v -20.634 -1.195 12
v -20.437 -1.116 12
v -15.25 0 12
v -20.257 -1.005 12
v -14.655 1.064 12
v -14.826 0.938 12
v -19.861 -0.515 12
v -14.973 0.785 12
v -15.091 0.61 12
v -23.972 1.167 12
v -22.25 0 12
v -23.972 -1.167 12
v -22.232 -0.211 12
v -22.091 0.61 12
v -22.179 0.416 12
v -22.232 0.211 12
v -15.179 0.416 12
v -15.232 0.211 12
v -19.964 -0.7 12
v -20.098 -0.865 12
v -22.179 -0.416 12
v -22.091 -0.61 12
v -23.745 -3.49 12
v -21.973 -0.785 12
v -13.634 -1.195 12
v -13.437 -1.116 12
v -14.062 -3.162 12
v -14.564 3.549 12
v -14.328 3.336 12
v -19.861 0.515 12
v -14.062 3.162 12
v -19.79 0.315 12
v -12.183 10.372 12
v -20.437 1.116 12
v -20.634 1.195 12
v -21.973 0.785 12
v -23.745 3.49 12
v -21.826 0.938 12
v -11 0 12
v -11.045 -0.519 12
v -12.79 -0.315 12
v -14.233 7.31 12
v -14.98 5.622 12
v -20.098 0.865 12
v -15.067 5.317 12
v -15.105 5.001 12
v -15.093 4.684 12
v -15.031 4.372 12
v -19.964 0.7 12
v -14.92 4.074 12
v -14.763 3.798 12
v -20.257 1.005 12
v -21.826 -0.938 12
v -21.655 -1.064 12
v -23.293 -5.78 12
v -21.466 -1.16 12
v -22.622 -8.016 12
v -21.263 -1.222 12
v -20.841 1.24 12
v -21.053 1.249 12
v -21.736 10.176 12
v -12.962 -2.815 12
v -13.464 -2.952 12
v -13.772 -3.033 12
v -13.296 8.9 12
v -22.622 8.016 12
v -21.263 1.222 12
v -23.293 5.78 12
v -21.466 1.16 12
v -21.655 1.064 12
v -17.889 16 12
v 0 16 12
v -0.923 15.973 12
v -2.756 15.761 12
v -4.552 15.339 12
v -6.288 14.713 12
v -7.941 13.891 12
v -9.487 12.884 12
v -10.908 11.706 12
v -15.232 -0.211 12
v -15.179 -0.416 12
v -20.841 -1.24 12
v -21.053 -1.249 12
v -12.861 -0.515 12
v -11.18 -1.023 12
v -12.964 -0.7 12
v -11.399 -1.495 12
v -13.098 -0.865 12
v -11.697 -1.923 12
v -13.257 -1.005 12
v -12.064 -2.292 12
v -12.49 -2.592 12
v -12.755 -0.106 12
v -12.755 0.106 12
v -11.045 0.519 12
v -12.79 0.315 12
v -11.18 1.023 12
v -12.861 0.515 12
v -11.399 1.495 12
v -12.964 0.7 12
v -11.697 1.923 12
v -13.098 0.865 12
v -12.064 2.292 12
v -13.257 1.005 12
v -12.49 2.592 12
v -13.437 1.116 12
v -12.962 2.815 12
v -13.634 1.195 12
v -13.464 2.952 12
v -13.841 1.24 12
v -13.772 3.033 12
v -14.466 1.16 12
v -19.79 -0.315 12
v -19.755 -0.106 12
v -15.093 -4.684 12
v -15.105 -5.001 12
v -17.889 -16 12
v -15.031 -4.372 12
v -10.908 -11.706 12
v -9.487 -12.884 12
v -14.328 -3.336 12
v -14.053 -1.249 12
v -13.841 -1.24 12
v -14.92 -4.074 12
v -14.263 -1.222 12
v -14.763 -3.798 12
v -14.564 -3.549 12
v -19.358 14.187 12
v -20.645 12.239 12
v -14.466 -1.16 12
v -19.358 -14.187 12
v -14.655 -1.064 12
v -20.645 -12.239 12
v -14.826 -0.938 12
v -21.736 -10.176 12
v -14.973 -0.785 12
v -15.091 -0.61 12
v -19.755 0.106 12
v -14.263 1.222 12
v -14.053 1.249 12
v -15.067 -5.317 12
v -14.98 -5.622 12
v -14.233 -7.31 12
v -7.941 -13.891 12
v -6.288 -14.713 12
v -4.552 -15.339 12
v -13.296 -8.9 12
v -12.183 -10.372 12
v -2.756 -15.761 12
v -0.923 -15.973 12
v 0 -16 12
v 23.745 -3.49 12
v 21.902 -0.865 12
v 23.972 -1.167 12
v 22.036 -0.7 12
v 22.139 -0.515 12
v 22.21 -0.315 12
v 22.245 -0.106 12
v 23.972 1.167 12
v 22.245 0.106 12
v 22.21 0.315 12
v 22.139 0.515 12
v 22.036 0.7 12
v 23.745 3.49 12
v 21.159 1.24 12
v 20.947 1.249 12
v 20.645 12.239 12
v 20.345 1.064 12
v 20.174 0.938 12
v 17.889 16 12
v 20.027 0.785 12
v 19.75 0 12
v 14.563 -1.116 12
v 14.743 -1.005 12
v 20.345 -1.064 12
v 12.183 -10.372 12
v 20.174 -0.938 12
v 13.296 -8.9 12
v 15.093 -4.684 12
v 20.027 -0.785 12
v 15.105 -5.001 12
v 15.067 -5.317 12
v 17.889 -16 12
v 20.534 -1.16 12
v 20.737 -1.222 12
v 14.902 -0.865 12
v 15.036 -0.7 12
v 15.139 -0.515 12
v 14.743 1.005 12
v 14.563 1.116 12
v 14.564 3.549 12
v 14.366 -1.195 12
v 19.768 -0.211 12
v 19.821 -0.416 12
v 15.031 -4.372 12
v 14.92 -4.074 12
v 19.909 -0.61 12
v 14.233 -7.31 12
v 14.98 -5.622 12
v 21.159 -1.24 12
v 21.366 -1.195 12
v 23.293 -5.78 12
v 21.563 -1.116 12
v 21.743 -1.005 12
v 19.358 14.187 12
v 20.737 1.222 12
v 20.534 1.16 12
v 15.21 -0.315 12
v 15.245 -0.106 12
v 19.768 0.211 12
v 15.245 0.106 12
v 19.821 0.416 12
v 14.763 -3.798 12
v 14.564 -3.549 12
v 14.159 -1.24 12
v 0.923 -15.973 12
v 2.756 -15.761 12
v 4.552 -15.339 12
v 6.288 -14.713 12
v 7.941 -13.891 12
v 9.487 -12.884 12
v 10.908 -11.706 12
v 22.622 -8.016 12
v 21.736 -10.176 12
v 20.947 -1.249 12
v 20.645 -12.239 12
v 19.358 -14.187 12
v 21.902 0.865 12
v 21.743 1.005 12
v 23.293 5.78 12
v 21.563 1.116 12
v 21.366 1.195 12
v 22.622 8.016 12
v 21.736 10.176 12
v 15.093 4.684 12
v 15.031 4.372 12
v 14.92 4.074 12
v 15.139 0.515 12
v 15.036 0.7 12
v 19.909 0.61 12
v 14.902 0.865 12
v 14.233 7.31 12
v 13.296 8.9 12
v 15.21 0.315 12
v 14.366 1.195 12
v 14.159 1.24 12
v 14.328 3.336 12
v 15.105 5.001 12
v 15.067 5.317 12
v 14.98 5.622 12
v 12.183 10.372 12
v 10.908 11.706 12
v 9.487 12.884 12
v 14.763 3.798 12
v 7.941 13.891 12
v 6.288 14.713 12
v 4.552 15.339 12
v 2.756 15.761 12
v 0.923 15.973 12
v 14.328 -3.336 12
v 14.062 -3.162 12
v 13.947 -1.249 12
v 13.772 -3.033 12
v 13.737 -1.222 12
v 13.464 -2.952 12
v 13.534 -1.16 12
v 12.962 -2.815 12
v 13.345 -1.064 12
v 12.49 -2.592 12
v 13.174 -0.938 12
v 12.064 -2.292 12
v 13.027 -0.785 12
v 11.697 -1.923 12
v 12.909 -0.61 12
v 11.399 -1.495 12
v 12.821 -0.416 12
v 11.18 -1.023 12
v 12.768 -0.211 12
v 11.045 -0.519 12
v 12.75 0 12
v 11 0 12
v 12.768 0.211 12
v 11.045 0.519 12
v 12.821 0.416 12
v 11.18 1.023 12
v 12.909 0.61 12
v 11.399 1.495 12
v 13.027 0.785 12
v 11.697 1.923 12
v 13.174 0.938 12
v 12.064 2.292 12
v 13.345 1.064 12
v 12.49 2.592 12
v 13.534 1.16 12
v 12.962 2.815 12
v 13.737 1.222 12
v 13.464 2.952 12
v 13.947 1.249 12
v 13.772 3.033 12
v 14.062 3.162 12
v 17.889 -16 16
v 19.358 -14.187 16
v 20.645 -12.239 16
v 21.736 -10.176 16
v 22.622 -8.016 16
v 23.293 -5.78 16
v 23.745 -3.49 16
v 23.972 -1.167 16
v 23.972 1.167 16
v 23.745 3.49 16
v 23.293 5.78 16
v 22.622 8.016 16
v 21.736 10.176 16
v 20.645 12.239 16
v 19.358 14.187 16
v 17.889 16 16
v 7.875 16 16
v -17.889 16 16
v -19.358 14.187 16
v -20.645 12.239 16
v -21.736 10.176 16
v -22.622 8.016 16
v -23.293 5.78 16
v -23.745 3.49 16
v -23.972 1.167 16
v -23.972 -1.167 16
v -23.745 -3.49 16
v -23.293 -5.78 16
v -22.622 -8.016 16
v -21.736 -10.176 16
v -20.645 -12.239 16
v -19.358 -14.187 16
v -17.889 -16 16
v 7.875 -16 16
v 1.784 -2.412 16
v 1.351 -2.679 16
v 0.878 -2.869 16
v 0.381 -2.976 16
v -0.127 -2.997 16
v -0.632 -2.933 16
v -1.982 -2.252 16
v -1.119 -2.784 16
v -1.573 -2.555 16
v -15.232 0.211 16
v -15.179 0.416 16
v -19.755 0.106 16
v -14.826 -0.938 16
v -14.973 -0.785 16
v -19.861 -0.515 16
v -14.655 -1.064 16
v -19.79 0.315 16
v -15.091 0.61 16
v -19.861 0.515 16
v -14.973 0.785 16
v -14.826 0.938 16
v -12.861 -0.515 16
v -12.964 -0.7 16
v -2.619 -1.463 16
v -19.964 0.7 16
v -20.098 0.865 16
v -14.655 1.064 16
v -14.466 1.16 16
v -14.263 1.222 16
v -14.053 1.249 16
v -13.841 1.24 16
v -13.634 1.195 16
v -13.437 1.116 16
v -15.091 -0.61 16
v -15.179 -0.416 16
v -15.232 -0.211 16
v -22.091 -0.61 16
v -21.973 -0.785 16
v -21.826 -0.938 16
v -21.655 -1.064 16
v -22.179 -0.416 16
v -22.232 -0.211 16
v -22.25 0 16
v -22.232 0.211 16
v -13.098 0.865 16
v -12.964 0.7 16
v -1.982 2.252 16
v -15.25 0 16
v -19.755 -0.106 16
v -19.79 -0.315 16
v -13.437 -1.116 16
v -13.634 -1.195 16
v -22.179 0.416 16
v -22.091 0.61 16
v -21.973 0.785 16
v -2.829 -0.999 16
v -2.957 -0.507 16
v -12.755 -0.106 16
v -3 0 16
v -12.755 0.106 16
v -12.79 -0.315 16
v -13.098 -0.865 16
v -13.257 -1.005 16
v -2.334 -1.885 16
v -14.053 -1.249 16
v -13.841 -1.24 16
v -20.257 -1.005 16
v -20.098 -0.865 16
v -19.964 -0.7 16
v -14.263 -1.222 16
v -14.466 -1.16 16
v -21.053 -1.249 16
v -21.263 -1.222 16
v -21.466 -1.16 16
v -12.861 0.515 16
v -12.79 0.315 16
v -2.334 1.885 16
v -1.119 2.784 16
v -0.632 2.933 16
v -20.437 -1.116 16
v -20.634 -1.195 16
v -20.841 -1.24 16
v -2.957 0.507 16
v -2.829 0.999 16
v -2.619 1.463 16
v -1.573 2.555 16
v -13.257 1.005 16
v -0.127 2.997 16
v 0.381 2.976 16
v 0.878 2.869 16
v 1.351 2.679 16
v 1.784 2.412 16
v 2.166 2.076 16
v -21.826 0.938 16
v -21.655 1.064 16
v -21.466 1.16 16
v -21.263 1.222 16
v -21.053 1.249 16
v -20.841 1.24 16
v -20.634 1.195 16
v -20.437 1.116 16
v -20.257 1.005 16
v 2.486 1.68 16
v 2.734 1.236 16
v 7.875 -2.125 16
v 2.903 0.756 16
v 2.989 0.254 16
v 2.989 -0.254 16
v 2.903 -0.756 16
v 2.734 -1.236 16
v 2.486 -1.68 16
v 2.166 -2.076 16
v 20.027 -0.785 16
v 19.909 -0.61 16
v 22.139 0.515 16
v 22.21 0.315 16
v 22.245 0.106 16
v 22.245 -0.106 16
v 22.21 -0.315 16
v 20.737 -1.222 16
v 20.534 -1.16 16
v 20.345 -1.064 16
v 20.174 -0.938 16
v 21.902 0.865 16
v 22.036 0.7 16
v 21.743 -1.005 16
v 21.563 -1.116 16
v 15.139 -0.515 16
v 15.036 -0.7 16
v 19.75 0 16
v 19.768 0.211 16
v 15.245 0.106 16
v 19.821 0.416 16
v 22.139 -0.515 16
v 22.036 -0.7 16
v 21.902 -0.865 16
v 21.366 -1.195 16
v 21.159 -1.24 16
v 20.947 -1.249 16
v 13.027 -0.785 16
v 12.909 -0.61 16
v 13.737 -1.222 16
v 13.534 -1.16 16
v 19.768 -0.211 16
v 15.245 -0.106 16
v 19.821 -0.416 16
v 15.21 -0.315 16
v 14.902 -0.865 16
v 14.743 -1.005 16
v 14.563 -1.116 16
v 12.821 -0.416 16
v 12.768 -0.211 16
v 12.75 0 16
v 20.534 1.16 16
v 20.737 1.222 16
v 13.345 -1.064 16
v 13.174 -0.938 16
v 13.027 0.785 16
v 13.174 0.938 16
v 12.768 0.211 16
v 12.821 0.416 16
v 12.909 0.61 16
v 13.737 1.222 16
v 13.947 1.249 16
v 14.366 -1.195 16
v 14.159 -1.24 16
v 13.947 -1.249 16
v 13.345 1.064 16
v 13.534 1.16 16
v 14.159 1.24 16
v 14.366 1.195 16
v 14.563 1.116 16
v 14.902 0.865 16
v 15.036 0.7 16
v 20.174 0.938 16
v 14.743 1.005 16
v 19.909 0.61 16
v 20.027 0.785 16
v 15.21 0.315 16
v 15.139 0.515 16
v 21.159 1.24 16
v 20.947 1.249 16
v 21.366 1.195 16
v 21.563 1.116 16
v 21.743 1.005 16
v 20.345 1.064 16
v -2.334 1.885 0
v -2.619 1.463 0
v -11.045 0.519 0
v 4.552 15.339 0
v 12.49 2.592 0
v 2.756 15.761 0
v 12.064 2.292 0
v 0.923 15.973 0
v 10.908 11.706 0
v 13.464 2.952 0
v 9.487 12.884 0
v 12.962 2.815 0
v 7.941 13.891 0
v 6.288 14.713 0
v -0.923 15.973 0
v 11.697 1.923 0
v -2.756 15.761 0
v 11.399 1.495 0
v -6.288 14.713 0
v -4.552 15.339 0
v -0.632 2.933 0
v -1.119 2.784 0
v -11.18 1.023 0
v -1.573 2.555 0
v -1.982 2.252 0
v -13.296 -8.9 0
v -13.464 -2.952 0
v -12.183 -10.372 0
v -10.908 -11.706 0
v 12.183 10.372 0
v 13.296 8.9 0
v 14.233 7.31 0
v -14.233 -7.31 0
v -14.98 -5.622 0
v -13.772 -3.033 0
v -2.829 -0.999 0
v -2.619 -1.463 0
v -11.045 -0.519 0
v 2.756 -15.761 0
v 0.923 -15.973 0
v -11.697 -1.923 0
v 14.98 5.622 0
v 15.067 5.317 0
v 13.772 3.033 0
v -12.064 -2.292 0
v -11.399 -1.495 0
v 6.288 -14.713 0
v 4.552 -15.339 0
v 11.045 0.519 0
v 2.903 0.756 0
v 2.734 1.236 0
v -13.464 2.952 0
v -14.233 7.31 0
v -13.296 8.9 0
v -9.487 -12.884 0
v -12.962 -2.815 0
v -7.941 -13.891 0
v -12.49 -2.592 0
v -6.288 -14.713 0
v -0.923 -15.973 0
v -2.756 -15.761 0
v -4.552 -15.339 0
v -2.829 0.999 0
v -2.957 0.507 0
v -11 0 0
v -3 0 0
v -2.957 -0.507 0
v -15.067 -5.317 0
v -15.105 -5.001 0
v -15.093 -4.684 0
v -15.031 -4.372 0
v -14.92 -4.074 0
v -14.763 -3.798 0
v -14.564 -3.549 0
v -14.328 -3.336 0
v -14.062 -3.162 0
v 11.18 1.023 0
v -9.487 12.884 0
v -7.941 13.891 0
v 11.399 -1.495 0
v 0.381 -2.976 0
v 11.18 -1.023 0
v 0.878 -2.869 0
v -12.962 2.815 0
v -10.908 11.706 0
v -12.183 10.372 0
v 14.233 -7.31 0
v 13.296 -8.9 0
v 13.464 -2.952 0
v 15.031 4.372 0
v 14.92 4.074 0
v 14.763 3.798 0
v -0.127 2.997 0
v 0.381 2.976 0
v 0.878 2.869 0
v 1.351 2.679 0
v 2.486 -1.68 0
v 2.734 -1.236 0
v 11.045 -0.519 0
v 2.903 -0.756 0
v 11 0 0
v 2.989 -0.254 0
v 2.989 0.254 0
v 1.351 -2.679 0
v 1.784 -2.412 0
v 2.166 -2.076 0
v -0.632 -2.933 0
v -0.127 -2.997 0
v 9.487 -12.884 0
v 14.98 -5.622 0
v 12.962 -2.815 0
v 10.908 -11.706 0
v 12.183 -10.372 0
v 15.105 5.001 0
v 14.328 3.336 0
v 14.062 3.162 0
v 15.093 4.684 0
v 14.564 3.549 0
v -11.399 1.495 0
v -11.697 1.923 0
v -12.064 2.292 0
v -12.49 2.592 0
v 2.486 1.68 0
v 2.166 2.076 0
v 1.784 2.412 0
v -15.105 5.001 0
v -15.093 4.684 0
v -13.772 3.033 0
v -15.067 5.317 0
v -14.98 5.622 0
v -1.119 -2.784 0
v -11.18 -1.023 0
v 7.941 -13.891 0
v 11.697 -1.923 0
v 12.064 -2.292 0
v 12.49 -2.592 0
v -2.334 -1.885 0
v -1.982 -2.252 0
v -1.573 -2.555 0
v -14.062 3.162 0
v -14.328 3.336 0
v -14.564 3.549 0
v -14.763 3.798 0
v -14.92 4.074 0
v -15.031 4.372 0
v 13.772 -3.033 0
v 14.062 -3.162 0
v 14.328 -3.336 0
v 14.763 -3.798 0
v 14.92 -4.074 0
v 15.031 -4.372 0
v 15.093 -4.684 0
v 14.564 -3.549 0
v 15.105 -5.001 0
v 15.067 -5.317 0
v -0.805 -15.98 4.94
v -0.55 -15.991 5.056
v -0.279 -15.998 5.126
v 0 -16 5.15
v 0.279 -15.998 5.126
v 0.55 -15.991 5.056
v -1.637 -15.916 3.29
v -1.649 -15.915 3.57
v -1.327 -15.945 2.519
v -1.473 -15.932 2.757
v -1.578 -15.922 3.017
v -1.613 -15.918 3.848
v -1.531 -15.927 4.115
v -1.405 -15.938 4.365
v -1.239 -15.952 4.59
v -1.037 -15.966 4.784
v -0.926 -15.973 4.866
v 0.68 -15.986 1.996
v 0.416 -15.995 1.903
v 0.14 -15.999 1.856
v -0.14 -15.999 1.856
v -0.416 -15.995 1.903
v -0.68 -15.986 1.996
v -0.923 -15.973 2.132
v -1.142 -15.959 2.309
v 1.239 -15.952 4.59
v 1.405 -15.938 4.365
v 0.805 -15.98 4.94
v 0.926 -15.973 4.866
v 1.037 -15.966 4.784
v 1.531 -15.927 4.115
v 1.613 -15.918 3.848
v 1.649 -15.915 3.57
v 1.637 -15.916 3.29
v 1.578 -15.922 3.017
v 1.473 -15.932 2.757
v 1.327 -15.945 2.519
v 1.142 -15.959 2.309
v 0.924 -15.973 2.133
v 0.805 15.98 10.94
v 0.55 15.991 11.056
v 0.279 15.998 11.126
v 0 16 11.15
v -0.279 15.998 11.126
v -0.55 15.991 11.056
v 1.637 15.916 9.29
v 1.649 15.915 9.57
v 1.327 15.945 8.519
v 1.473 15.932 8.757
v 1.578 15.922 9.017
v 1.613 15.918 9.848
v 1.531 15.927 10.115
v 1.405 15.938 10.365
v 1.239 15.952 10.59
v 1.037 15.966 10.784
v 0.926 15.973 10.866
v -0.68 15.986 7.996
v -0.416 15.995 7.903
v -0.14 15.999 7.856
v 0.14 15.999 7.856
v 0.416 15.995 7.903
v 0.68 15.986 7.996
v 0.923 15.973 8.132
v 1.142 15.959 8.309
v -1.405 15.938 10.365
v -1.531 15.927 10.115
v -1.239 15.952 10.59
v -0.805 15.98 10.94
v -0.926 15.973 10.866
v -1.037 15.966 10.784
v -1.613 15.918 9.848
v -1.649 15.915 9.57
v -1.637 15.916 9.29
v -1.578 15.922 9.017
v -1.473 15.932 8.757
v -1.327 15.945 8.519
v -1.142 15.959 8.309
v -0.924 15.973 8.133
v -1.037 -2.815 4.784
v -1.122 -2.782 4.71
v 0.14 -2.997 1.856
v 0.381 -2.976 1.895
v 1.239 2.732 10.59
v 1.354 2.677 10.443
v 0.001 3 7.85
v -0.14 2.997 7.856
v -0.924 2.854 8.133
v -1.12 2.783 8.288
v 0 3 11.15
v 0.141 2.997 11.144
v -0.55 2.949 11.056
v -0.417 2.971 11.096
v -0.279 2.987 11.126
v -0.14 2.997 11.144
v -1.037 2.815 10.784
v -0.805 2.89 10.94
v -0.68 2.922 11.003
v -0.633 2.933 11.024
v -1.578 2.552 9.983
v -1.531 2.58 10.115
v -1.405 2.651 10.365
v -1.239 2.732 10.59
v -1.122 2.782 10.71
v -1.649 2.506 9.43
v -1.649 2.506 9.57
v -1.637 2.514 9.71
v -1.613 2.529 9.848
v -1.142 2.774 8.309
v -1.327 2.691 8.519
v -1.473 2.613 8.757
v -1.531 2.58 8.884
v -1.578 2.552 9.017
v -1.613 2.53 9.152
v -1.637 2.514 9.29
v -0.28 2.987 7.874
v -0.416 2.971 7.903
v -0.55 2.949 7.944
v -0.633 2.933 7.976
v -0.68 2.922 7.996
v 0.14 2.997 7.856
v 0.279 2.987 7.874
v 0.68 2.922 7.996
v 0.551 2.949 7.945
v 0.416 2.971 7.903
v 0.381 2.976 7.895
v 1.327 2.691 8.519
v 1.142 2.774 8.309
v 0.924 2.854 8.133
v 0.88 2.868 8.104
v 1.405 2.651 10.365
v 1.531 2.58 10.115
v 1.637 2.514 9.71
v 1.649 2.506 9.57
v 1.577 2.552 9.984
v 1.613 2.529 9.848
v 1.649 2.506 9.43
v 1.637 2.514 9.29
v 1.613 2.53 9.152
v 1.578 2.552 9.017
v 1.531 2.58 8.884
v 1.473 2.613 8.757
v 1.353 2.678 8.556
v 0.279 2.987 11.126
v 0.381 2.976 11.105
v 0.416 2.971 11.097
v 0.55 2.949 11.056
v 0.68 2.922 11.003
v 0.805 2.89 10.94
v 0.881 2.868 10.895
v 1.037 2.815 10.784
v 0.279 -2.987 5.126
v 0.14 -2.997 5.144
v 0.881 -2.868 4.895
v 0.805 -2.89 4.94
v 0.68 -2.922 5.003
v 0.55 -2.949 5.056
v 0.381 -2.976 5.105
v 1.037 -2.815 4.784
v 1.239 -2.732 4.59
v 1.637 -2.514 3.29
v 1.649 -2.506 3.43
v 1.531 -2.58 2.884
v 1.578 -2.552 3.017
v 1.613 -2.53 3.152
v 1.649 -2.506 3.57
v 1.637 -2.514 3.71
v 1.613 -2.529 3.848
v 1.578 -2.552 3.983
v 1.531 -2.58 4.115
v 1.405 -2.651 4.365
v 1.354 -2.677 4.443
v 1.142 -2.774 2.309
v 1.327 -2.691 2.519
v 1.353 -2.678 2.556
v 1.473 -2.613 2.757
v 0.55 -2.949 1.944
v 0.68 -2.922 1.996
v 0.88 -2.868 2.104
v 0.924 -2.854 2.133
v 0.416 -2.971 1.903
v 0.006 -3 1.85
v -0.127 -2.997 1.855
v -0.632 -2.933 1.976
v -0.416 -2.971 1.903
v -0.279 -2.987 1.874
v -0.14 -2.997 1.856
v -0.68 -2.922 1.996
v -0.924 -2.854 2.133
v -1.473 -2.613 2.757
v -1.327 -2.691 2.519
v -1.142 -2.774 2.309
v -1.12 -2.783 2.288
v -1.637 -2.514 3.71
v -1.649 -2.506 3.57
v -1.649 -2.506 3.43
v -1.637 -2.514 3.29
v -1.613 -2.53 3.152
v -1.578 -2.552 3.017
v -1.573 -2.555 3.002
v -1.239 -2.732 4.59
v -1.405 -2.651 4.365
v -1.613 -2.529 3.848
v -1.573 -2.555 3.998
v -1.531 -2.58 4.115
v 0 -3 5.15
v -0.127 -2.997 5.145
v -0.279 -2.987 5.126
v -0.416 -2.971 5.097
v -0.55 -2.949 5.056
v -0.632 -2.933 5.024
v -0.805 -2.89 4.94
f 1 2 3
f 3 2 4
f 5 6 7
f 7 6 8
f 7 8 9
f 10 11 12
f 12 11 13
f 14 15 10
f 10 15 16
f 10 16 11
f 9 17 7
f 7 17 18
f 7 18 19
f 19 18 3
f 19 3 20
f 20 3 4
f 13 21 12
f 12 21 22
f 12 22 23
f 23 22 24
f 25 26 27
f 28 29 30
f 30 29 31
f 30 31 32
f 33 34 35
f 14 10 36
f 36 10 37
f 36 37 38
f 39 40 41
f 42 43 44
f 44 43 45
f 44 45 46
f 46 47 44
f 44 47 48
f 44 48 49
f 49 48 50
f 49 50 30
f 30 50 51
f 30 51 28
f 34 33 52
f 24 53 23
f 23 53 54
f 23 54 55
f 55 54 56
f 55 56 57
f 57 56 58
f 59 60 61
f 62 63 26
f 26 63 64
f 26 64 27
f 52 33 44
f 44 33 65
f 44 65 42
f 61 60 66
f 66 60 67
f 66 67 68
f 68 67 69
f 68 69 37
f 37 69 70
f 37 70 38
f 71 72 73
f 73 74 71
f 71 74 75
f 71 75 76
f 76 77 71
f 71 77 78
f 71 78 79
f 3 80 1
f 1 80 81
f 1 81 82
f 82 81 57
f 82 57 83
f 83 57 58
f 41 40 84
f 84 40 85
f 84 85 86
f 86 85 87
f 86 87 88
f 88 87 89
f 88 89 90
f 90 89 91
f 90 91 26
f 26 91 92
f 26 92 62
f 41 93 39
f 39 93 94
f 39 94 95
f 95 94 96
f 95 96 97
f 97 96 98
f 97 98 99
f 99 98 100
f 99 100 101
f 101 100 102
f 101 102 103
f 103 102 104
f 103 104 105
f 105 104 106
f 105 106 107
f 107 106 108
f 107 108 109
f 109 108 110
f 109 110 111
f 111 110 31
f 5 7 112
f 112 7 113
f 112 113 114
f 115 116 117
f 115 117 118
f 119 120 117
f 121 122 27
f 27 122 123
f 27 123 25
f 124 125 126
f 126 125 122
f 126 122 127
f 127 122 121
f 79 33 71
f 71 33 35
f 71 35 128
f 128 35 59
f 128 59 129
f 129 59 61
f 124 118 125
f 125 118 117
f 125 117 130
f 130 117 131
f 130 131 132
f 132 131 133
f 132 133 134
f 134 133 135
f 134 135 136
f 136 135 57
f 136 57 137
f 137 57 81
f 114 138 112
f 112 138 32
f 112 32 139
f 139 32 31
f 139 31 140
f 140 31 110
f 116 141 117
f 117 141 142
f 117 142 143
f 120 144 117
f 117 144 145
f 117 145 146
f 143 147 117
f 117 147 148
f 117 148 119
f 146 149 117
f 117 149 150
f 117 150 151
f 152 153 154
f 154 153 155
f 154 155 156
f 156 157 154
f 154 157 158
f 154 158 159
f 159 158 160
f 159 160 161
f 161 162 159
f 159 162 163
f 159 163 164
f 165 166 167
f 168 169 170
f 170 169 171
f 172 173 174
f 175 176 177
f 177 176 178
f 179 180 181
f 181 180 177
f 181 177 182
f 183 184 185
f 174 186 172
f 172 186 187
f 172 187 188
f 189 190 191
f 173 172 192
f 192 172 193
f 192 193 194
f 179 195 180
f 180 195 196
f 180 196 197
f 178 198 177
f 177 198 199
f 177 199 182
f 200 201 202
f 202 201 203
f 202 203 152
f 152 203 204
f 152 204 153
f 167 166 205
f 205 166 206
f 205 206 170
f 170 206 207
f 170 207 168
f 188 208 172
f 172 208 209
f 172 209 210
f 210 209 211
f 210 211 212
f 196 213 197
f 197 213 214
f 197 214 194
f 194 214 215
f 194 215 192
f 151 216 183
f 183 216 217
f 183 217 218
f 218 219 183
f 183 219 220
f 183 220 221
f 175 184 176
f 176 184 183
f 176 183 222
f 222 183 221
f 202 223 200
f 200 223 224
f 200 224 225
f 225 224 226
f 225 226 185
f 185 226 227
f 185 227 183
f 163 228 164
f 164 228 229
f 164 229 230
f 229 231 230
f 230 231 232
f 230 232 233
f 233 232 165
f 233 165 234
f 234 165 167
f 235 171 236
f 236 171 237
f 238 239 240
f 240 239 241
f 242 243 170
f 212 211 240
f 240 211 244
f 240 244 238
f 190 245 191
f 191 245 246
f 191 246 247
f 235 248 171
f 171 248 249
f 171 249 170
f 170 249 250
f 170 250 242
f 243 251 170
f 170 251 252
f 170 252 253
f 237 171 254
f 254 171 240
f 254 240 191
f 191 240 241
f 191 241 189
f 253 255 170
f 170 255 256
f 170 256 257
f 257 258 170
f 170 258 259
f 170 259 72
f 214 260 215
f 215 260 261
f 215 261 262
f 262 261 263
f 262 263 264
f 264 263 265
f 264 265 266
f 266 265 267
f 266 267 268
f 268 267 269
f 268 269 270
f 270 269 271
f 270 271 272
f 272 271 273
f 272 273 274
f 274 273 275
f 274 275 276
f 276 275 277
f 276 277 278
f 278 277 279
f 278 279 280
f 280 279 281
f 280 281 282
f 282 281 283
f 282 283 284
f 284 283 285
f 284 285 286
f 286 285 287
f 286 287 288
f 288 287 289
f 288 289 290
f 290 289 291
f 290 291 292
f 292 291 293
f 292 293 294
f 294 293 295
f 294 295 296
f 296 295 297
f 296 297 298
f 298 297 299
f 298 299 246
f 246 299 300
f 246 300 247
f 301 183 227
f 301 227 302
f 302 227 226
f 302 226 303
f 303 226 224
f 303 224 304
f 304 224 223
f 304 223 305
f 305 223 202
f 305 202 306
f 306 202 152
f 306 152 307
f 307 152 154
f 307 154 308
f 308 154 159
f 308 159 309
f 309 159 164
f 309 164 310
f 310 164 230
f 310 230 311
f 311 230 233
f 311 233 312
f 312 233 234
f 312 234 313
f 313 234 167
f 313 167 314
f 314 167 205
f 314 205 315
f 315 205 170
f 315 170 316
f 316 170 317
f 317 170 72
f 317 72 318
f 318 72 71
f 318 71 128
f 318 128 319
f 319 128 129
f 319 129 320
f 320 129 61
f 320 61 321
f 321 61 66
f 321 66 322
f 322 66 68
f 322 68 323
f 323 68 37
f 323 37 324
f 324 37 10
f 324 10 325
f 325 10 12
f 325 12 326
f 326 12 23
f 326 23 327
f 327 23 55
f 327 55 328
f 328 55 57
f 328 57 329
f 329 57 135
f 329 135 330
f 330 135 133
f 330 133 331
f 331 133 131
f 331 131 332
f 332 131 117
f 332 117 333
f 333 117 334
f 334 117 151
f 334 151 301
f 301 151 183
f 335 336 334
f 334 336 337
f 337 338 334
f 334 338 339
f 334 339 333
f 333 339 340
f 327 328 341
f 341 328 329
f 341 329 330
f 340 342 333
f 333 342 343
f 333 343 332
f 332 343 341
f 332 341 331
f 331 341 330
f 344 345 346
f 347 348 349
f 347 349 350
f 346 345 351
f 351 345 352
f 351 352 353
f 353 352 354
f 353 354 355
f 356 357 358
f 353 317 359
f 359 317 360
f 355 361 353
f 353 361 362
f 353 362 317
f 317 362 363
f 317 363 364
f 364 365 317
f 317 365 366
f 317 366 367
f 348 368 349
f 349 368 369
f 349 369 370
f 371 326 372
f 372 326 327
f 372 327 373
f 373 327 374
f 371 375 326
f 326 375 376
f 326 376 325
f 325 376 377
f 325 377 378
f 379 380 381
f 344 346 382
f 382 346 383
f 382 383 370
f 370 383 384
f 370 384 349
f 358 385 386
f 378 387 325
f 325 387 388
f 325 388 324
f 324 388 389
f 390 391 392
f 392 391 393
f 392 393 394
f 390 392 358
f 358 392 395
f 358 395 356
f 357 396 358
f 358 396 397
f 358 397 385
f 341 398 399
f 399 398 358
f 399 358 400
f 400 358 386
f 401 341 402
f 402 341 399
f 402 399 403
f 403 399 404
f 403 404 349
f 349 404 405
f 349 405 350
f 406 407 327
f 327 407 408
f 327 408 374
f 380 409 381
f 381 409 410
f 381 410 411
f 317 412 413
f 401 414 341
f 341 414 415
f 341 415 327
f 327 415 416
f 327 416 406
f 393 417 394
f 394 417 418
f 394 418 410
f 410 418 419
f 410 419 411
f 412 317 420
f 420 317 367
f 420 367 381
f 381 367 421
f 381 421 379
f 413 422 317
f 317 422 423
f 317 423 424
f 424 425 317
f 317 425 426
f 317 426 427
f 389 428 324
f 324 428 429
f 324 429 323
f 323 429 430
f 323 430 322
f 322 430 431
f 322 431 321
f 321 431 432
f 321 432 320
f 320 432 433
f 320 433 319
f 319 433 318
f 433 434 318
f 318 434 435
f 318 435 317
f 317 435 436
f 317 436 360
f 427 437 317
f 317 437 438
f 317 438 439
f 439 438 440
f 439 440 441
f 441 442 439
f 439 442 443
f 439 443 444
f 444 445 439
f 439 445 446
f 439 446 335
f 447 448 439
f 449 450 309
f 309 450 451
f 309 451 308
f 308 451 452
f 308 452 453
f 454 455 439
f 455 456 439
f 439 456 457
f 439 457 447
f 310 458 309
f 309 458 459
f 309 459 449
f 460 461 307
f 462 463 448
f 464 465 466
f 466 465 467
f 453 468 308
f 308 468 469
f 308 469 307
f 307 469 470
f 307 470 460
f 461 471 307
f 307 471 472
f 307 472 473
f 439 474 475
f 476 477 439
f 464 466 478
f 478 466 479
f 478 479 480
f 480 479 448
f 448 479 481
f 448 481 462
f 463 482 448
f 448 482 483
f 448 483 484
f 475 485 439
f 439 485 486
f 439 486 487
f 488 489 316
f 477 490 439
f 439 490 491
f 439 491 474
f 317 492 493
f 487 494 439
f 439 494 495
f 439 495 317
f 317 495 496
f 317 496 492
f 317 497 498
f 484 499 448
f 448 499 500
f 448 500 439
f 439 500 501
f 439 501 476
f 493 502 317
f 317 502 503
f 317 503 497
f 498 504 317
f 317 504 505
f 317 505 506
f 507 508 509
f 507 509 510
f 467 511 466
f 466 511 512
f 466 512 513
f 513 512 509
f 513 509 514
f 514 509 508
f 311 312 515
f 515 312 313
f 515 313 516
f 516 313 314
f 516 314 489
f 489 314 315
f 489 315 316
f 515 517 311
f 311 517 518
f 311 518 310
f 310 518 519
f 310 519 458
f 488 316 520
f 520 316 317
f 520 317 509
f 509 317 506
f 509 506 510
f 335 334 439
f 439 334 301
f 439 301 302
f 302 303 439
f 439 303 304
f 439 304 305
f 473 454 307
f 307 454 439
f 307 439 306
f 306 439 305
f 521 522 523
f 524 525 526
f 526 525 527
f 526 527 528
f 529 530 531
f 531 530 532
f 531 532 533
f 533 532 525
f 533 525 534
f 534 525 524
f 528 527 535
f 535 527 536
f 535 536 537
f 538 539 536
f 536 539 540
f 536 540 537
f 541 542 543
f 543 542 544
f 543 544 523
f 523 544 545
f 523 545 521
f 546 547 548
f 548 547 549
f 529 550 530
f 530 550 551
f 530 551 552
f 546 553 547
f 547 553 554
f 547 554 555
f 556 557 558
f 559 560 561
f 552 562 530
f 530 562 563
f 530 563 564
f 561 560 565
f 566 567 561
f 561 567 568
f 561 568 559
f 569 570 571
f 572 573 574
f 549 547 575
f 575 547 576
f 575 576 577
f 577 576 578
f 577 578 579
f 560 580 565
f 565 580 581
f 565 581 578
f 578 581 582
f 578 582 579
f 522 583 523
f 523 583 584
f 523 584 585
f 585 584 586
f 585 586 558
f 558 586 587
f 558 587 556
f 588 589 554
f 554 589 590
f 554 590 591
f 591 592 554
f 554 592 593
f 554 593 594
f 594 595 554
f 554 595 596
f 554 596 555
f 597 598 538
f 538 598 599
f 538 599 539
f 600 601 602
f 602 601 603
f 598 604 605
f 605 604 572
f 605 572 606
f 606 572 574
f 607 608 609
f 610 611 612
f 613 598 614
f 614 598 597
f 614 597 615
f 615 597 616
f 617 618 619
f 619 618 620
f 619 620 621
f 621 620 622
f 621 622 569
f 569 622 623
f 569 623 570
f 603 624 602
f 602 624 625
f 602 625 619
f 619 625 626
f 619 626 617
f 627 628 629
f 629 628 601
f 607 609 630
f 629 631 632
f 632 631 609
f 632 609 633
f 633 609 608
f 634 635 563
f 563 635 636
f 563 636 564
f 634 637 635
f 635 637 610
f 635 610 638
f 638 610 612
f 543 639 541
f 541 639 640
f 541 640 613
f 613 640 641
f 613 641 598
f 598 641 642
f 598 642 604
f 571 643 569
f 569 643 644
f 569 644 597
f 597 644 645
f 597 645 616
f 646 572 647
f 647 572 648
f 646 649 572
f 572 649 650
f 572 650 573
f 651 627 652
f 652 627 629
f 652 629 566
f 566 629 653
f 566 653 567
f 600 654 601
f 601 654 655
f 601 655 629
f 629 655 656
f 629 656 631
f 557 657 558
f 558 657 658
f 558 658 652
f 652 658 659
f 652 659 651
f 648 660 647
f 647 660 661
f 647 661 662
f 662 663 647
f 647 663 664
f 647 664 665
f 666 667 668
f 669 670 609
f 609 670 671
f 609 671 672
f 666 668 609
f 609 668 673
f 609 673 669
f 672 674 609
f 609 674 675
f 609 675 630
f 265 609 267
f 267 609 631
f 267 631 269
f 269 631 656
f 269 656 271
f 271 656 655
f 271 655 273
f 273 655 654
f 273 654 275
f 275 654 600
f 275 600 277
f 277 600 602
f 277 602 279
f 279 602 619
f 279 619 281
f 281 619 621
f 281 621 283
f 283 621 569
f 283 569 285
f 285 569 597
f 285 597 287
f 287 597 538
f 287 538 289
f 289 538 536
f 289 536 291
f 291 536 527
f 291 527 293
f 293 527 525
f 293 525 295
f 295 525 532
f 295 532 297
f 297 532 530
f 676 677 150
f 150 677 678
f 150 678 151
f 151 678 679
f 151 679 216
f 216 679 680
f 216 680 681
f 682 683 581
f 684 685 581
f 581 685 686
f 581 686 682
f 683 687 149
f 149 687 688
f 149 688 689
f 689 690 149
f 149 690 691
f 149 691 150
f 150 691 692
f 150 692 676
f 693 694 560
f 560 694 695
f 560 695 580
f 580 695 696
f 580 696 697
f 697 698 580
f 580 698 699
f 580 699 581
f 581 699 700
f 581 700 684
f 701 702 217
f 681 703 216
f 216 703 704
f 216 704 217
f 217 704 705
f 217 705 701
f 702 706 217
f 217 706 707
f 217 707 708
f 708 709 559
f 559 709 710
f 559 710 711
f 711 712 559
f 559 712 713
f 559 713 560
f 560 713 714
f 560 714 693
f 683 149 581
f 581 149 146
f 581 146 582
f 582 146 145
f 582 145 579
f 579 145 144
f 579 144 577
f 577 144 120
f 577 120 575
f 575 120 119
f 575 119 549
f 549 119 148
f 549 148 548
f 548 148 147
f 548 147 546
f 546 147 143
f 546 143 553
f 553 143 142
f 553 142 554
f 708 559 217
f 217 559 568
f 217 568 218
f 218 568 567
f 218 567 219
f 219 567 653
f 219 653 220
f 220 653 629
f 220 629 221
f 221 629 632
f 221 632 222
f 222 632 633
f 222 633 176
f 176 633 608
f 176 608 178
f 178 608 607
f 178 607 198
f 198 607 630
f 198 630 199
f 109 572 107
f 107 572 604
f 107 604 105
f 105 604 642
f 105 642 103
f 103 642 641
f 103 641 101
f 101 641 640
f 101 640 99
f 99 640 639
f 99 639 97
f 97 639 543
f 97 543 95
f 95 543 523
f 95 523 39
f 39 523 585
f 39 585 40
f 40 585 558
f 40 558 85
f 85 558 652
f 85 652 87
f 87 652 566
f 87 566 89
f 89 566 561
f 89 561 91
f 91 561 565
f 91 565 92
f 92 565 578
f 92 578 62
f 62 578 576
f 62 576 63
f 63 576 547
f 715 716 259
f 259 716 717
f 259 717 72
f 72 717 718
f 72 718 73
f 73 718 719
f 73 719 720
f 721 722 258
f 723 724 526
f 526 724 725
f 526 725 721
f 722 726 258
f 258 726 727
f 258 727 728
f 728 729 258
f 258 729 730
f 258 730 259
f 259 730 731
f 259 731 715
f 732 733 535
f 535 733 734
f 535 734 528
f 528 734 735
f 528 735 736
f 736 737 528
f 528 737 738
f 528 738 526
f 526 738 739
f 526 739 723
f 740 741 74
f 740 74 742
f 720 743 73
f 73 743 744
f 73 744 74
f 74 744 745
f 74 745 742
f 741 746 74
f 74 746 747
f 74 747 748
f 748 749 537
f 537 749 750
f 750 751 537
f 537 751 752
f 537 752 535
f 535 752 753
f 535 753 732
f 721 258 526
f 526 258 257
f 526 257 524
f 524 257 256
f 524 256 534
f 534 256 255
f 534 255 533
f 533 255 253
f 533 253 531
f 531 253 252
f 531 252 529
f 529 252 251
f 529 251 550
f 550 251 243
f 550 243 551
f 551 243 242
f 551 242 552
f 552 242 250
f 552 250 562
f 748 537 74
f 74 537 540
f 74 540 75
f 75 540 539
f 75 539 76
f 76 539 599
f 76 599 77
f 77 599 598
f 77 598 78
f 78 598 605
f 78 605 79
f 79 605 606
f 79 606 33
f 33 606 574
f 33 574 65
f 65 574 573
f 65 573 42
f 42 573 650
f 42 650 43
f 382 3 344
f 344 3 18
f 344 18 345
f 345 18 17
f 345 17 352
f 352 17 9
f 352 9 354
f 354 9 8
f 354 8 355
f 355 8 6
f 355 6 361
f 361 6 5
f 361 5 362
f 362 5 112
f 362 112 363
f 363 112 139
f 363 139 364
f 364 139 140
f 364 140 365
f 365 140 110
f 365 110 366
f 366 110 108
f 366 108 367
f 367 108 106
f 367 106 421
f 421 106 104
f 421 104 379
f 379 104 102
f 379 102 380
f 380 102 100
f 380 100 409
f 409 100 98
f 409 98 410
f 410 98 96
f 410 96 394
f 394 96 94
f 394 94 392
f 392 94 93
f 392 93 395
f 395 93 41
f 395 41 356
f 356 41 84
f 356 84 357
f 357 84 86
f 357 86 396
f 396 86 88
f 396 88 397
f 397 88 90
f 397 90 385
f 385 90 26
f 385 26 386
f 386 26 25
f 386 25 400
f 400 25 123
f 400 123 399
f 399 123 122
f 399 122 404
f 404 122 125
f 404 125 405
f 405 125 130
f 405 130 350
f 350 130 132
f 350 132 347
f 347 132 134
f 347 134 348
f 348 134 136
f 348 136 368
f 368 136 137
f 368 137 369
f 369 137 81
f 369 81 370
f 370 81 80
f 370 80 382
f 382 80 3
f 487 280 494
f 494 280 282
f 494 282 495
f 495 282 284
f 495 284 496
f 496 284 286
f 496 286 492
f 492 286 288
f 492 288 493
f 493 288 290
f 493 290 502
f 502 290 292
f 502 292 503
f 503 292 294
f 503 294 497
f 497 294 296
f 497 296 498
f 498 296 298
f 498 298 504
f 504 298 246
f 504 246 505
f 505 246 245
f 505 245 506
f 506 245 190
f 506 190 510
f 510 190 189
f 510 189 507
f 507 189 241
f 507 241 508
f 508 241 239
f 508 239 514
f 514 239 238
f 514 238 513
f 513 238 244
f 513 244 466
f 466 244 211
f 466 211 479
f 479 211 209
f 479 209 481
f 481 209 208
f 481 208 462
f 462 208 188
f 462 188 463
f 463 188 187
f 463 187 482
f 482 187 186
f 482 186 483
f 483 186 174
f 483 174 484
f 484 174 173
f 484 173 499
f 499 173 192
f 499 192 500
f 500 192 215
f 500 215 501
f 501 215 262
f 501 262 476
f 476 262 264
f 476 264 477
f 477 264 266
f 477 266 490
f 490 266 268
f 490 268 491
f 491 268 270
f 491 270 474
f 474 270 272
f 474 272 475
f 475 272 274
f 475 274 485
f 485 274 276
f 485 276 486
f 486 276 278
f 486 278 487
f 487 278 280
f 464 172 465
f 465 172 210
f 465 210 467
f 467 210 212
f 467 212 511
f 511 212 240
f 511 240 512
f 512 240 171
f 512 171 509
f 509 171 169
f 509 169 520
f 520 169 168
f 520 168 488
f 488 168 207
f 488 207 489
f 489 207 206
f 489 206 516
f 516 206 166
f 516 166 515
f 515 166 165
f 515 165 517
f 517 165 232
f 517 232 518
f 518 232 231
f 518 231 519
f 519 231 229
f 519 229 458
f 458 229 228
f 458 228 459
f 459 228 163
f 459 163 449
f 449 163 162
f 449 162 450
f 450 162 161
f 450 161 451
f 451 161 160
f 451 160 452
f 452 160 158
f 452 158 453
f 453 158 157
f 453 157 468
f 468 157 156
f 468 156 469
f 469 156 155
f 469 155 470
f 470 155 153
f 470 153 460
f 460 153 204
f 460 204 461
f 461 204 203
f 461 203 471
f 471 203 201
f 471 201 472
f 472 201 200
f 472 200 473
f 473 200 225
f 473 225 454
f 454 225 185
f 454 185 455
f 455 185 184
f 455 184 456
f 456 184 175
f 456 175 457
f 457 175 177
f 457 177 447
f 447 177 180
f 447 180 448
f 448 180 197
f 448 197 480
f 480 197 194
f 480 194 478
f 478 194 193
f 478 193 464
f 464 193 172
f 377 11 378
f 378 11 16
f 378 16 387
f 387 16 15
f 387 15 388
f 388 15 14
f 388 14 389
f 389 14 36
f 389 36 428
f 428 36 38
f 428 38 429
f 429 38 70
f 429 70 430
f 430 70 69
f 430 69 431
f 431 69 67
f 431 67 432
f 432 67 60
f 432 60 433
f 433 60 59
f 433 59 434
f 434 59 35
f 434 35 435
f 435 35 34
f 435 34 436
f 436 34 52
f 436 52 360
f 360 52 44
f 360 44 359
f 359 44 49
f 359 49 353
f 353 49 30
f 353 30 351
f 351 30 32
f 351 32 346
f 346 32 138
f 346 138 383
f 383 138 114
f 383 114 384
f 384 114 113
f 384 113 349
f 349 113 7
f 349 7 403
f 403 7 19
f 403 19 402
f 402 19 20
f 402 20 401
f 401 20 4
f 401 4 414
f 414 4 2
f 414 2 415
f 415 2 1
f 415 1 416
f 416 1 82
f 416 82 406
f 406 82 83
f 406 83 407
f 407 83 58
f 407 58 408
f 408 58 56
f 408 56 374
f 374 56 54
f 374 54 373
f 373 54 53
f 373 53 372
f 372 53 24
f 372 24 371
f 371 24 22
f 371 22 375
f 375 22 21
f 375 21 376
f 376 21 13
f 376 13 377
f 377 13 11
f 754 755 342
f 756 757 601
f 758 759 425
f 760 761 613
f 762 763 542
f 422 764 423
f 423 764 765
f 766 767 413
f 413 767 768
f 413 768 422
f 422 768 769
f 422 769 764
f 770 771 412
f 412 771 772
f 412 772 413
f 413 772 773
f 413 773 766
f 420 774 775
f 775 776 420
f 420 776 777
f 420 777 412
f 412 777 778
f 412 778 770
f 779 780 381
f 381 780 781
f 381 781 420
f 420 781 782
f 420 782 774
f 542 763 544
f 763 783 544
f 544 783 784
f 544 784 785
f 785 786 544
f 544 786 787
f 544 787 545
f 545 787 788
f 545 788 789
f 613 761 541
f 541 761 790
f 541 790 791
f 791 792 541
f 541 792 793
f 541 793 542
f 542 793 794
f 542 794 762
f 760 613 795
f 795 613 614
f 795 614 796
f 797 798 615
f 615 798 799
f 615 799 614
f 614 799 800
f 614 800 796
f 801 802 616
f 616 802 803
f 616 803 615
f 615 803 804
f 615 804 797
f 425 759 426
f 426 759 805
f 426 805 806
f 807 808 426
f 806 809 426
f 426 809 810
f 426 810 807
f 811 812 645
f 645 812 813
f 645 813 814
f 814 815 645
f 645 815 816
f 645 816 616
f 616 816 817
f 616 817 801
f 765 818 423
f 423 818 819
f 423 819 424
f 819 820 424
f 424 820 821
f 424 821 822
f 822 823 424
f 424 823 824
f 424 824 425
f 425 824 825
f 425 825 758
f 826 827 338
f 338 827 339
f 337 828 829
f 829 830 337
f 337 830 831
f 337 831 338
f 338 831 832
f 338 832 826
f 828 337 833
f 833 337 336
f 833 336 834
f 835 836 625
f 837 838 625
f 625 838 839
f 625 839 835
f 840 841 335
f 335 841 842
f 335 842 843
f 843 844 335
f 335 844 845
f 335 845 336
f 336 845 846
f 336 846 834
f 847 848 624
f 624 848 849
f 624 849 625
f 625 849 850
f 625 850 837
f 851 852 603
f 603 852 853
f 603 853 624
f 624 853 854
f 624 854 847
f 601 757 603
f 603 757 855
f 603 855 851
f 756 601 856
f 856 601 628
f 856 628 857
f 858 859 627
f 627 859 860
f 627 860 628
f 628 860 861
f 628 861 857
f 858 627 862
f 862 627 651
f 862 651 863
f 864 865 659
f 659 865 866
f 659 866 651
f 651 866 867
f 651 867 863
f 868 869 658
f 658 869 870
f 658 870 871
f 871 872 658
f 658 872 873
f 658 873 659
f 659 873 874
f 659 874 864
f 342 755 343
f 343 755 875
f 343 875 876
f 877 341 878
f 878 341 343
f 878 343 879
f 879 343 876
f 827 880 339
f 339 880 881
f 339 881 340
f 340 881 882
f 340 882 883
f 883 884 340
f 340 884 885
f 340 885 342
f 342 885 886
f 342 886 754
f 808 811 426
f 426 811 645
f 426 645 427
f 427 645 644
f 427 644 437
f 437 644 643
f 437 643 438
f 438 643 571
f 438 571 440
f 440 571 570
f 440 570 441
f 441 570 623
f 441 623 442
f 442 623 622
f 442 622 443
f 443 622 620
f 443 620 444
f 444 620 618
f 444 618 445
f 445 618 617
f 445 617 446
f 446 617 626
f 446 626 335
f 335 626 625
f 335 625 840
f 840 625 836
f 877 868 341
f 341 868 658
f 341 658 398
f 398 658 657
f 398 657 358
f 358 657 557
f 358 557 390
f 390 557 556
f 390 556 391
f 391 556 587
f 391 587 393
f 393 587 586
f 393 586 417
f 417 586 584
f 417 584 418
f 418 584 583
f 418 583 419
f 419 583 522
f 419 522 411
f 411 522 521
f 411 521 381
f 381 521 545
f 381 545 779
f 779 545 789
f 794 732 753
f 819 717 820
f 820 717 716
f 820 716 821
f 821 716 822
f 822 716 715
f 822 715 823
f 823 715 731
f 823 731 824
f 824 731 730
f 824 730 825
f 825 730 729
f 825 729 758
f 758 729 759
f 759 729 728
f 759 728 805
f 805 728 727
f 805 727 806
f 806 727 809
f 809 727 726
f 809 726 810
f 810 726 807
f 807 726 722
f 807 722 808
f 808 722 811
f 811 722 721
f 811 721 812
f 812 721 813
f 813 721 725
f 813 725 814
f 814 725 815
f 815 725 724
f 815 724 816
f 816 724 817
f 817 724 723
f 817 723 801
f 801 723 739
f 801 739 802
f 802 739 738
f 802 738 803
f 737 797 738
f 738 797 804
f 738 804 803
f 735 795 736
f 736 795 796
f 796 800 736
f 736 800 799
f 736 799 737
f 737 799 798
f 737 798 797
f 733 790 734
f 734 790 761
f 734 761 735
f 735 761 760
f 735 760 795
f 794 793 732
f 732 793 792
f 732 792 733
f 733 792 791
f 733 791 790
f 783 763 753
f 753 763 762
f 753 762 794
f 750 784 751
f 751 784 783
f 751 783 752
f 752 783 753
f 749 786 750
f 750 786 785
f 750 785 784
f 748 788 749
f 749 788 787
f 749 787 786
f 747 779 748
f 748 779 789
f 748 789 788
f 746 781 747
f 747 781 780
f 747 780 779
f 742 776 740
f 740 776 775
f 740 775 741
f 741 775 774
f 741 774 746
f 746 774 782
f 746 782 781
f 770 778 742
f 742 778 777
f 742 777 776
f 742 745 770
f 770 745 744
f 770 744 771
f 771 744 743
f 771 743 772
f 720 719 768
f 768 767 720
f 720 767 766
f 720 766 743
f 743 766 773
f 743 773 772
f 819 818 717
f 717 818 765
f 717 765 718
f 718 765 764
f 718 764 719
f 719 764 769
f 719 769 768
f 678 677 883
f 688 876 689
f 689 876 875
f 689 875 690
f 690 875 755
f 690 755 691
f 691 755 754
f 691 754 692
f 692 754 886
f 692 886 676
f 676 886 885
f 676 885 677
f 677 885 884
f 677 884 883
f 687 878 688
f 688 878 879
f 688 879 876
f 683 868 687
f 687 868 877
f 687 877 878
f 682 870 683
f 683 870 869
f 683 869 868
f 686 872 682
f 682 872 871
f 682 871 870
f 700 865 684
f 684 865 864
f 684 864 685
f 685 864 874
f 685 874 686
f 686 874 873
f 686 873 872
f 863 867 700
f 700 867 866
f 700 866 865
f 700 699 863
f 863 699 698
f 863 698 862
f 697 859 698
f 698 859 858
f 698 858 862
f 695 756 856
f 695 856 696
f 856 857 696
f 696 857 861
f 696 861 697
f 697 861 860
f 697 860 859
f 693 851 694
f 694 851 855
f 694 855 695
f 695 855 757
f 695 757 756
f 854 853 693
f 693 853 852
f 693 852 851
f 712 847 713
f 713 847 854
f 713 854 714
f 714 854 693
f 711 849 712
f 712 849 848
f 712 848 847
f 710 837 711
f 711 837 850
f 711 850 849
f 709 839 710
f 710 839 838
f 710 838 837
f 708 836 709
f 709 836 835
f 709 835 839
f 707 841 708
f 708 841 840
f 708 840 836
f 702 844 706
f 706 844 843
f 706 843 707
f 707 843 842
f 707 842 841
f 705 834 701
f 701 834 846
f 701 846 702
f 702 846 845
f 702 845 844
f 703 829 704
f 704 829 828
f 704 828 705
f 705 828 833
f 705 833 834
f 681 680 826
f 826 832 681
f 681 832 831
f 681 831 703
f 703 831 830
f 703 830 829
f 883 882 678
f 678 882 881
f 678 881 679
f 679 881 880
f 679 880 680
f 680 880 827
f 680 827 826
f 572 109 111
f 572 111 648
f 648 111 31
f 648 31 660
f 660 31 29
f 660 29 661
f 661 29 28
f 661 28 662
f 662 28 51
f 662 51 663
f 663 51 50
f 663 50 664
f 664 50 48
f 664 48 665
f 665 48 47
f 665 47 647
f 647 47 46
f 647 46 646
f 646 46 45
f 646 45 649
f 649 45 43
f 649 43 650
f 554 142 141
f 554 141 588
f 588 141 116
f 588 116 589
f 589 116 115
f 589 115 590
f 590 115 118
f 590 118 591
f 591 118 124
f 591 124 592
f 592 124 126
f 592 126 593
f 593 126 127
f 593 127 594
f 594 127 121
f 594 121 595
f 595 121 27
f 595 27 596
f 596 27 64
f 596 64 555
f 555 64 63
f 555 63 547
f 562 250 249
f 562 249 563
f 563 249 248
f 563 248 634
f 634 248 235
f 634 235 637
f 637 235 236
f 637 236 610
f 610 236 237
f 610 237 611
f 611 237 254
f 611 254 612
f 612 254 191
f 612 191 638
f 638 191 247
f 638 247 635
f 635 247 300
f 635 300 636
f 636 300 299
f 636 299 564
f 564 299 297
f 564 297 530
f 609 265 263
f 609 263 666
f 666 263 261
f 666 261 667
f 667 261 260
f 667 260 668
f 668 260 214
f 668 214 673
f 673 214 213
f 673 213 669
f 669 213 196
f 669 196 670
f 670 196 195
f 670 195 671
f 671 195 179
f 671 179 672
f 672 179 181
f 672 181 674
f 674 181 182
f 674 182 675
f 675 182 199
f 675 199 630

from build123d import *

# Parameters (mm, degrees)
BOSS_EXTRUDE1_DEPTH        = 4
BOSS_EXTRUDE2_REACH        = 34.985
F_2_CLEARANCE_HOLE1_D      = 2.5
F_12_CLEARANCE_HOLE1_D     = 6
F_4_CLEARANCE_HOLE1_REACH  = 43.113
F_4_CLEARANCE_HOLE1_BORE_R = 1.65
SKETCH9_W                  = 1.65
SKETCH9_H                  = 32
FILLET1_R                  = 2


with BuildPart() as part:
    # Sketch1 → Boss-Extrude1 (new body)
    with BuildSketch(Plane(origin=(0, 0, 12), x_dir=(-1, 0, 0), z_dir=(0, 0, -1))):
        with BuildLine():
            Line((-17.88854382, -16), (17.88854382, -16))
            ThreePointArc((17.88854382, -16), (24, 0), (17.88854382, 16))
            Line((17.88854382, 16), (-17.88854382, 16))
            ThreePointArc((-17.88854382, 16), (-24, 0), (-17.88854382, -16))
        make_face()
    extrude(amount=-BOSS_EXTRUDE1_DEPTH)

    # Sketch3 → Boss-Extrude2 (add, up to next)
    with BuildSketch(Plane(origin=(0, 0, 0), x_dir=(-1, 0, 0), z_dir=(0, 0, -1)), mode=Mode.PRIVATE) as boss_extrude2_sk1:
        with BuildLine():
            ThreePointArc((-15.821428571, 2.383778085), (-11, 0), (-15.821428571, -2.383778085))
            ThreePointArc((-15.821428571, -2.383778085), (0, -16), (15.821428571, -2.383778085))
            ThreePointArc((15.821428571, -2.383778085), (11, 0), (15.821428571, 2.383778085))
            ThreePointArc((15.821428571, 2.383778085), (0, 16), (-15.821428571, 2.383778085))
        make_face()
    boss_extrude2_tool1 = extrude(boss_extrude2_sk1.sketch, amount=-BOSS_EXTRUDE2_REACH, mode=Mode.PRIVATE) - part.part
    add(boss_extrude2_tool1.solids().sort_by_distance((0, 0, 0))[0])

    # #2 Clearance Hole1 (through all)
    with Locations(Plane(origin=(0, 0, 12), x_dir=(-1, 0, 0), z_dir=(0, 0, -1))):
        with Locations((21, 0), (-21, 0), (-14, 0), (14, 0)):
            Hole(F_2_CLEARANCE_HOLE1_D / 2)

    # #12 Clearance Hole1 (through all)
    with Locations(Plane(origin=(0, 0, 0), x_dir=(-1, 0, 0), z_dir=(0, 0, -1))):
        with Locations((0, 0)):
            Hole(F_12_CLEARANCE_HOLE1_D / 2)

    # #4 Clearance Hole1 bore (on position points) → #4 Clearance Hole1 (cut, up to next)
    with BuildSketch(Plane(origin=(0, 16, 9.5), x_dir=(1, 0, 0), z_dir=(0, 1, 0)), mode=Mode.PRIVATE) as f_4_clearance_hole1_sk1:
        Circle(F_4_CLEARANCE_HOLE1_BORE_R)
    f_4_clearance_hole1_tool1 = extrude(f_4_clearance_hole1_sk1.sketch, amount=-F_4_CLEARANCE_HOLE1_REACH, mode=Mode.PRIVATE) & part.part
    add(f_4_clearance_hole1_tool1.solids().sort_by_distance((0, 16, 9.5))[0], mode=Mode.SUBTRACT)

    # Sketch9 → #4 Clearance Hole2 (revolve, cut)
    with BuildSketch(Plane(origin=(0, -2.505493963, 3.5), x_dir=(0, 0, 1), z_dir=(1, 0, 0))):
        with Locations((0.825, 16)):
            Rectangle(SKETCH9_W, SKETCH9_H)
    revolve(axis=Axis((0, 3.844506037, 3.5), (0, -1, 0)), mode=Mode.SUBTRACT)

    # Fillet1
    fillet1_edges = [part.edges().sort_by_distance(p)[0] for p in [
        (15.821428571, -2.383778085, 6),
        (-15.821428571, -2.383778085, 6),
        (-15.821428571, 2.383778085, 6),
        (15.821428571, 2.383778085, 6),
    ]]
    fillet(fillet1_edges, radius=FILLET1_R)


solid = part.part
